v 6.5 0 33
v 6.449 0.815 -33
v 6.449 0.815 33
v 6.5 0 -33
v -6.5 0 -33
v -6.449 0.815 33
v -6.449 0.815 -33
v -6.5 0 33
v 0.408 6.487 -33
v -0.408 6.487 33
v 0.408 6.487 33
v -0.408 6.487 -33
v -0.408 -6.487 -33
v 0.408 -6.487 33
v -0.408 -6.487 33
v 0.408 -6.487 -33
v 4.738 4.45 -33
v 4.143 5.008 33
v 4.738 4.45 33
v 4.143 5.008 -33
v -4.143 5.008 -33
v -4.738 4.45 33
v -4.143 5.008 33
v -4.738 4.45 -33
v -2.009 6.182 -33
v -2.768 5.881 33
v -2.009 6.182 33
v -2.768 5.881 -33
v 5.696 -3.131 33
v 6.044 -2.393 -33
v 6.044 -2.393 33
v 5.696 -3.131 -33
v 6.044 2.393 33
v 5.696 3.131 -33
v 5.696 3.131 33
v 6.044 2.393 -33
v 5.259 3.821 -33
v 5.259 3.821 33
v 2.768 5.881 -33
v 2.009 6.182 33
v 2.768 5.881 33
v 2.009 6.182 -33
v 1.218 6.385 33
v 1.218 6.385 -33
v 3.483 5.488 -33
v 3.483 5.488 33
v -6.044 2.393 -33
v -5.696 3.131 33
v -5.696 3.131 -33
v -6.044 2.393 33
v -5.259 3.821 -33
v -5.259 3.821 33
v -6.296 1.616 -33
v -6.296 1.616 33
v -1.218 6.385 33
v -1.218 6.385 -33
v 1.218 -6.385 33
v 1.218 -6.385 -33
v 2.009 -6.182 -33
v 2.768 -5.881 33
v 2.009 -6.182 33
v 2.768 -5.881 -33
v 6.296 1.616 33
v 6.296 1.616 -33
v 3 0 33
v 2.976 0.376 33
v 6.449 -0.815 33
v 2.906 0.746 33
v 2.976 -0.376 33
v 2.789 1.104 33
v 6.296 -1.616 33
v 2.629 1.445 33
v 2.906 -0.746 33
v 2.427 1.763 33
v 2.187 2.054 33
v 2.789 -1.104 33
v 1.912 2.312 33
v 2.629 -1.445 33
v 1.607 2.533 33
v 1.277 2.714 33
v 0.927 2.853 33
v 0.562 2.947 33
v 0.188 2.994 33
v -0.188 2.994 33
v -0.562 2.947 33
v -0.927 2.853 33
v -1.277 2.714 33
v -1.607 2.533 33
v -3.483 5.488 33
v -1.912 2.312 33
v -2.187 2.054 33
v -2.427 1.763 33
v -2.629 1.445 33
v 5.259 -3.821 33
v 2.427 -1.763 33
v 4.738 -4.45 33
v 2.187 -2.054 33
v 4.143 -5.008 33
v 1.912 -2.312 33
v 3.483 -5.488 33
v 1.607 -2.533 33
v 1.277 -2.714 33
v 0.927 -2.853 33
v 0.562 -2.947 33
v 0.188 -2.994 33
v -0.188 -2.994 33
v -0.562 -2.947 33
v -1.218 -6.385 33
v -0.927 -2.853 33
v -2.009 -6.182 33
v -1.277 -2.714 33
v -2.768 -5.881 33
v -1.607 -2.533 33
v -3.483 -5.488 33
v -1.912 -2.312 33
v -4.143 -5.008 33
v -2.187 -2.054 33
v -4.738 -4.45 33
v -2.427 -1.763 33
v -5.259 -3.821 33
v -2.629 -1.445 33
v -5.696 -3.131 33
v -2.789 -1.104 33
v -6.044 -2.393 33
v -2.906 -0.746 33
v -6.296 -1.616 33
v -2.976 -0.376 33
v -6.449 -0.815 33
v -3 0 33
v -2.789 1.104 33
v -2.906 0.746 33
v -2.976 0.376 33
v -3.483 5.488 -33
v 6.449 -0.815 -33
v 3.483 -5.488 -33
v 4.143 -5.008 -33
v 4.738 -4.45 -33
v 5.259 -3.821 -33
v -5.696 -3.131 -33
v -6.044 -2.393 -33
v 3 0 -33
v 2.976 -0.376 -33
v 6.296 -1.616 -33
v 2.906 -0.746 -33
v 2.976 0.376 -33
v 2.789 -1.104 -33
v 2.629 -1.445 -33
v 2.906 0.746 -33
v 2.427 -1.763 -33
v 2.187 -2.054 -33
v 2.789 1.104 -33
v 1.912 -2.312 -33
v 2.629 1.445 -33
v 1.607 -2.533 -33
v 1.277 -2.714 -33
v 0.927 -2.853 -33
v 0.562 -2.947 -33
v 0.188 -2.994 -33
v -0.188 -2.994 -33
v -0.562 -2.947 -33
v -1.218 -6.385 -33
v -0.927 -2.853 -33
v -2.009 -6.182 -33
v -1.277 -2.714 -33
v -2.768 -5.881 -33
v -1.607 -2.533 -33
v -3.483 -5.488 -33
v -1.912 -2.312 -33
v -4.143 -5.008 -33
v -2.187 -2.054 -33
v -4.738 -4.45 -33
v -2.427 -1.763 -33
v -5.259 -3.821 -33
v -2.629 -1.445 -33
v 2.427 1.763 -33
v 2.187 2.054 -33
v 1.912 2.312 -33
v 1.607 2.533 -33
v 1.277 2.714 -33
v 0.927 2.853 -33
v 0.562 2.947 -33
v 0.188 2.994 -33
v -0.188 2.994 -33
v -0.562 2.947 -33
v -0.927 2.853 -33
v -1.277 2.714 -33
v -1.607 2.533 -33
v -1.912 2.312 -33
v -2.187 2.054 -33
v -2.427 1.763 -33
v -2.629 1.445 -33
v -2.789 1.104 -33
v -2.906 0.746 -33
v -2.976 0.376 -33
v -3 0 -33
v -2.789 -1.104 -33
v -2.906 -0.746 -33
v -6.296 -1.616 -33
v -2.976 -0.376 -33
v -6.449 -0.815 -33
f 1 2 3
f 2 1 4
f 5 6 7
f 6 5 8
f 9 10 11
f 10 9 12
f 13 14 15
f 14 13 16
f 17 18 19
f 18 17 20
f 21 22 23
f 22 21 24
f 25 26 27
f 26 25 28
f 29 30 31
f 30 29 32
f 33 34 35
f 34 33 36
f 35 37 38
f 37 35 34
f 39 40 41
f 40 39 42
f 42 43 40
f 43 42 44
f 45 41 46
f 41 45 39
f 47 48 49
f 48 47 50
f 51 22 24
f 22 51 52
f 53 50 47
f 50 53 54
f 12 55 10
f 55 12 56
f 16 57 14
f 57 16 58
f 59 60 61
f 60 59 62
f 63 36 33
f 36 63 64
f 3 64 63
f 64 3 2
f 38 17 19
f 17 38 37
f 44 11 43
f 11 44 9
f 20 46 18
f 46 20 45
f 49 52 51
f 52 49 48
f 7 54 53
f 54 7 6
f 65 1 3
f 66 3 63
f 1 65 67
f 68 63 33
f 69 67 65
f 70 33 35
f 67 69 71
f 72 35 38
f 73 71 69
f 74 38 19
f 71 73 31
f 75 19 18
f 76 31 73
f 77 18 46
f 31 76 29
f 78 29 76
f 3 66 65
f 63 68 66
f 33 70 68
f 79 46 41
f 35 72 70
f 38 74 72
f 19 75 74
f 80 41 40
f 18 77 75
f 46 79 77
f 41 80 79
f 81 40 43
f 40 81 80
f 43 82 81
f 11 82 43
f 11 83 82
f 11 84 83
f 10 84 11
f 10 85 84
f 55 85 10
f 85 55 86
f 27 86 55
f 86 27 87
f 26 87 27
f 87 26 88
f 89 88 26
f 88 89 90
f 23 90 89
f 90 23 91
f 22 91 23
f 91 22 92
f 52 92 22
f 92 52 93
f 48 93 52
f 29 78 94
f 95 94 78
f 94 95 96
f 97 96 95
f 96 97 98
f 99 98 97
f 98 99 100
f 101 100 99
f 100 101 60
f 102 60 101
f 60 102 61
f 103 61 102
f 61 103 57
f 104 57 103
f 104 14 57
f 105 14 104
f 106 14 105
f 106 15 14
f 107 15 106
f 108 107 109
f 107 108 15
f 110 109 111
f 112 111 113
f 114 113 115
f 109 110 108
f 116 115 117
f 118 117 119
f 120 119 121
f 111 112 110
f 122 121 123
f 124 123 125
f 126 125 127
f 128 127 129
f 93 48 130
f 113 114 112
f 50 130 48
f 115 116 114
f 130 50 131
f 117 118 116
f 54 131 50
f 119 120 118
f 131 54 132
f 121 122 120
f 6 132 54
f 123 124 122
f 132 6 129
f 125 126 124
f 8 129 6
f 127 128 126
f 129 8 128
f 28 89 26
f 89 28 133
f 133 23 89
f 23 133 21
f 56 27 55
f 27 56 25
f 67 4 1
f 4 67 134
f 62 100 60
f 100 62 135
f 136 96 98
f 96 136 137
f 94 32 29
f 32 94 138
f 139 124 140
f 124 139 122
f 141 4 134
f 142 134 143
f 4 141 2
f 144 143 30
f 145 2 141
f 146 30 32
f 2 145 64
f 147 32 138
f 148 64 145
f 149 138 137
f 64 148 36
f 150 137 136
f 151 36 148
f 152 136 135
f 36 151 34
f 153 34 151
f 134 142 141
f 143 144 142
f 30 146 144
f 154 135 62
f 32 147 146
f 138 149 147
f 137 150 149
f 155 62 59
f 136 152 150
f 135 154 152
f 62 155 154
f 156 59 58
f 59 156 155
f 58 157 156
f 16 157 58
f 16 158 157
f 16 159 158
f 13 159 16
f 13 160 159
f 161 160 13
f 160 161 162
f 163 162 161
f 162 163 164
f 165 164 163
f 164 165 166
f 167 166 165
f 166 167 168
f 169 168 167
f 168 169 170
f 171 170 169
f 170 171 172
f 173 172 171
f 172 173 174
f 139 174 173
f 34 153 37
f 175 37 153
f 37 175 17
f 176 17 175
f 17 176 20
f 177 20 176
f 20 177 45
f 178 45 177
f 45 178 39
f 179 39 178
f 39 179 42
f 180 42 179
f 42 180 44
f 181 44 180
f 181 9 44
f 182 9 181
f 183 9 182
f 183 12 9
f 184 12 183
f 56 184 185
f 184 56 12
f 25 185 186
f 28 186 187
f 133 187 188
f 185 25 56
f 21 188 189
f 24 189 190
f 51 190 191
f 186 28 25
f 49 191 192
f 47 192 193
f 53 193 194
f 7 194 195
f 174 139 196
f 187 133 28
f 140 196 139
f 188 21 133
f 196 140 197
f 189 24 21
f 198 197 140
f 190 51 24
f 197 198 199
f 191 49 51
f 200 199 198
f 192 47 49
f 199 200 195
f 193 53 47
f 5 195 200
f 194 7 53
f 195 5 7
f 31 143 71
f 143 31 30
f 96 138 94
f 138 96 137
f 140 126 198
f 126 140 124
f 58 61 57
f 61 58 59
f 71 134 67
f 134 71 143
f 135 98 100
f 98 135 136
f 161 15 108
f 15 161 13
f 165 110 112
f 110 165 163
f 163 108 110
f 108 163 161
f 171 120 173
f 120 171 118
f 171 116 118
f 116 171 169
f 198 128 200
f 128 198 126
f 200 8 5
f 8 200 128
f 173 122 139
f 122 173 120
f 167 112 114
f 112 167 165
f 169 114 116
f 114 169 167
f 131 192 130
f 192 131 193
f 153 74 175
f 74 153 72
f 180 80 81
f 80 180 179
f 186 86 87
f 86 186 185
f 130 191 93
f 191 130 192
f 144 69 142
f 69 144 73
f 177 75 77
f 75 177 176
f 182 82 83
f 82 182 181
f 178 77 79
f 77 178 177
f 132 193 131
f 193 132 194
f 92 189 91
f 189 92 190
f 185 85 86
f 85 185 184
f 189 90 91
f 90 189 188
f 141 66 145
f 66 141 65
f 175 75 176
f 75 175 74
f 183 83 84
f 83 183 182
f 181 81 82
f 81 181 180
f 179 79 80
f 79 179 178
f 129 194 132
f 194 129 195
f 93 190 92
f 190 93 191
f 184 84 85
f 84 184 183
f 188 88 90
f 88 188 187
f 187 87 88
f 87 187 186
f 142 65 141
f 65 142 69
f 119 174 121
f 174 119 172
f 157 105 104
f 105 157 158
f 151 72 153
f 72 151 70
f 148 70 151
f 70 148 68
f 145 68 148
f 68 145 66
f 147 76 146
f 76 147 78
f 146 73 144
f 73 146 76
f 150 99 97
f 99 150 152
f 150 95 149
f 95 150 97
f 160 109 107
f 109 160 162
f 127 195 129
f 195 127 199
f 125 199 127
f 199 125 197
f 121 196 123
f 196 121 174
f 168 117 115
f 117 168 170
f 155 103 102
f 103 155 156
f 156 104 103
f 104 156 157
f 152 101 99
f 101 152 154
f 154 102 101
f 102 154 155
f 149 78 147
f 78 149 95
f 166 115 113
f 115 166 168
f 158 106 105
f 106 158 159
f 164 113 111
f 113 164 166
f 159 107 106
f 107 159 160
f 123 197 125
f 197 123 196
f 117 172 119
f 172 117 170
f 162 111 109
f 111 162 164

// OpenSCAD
$fn = 50;


difference() {
	union() {
		translate(v = [0, 0, -33.0000000000]) {
			cylinder(h = 66, r = 6.5000000000);
		}
	}
	union() {
		translate(v = [0, 0, -100.0000000000]) {
			cylinder(h = 200, r = 3);
		}
	}
}
